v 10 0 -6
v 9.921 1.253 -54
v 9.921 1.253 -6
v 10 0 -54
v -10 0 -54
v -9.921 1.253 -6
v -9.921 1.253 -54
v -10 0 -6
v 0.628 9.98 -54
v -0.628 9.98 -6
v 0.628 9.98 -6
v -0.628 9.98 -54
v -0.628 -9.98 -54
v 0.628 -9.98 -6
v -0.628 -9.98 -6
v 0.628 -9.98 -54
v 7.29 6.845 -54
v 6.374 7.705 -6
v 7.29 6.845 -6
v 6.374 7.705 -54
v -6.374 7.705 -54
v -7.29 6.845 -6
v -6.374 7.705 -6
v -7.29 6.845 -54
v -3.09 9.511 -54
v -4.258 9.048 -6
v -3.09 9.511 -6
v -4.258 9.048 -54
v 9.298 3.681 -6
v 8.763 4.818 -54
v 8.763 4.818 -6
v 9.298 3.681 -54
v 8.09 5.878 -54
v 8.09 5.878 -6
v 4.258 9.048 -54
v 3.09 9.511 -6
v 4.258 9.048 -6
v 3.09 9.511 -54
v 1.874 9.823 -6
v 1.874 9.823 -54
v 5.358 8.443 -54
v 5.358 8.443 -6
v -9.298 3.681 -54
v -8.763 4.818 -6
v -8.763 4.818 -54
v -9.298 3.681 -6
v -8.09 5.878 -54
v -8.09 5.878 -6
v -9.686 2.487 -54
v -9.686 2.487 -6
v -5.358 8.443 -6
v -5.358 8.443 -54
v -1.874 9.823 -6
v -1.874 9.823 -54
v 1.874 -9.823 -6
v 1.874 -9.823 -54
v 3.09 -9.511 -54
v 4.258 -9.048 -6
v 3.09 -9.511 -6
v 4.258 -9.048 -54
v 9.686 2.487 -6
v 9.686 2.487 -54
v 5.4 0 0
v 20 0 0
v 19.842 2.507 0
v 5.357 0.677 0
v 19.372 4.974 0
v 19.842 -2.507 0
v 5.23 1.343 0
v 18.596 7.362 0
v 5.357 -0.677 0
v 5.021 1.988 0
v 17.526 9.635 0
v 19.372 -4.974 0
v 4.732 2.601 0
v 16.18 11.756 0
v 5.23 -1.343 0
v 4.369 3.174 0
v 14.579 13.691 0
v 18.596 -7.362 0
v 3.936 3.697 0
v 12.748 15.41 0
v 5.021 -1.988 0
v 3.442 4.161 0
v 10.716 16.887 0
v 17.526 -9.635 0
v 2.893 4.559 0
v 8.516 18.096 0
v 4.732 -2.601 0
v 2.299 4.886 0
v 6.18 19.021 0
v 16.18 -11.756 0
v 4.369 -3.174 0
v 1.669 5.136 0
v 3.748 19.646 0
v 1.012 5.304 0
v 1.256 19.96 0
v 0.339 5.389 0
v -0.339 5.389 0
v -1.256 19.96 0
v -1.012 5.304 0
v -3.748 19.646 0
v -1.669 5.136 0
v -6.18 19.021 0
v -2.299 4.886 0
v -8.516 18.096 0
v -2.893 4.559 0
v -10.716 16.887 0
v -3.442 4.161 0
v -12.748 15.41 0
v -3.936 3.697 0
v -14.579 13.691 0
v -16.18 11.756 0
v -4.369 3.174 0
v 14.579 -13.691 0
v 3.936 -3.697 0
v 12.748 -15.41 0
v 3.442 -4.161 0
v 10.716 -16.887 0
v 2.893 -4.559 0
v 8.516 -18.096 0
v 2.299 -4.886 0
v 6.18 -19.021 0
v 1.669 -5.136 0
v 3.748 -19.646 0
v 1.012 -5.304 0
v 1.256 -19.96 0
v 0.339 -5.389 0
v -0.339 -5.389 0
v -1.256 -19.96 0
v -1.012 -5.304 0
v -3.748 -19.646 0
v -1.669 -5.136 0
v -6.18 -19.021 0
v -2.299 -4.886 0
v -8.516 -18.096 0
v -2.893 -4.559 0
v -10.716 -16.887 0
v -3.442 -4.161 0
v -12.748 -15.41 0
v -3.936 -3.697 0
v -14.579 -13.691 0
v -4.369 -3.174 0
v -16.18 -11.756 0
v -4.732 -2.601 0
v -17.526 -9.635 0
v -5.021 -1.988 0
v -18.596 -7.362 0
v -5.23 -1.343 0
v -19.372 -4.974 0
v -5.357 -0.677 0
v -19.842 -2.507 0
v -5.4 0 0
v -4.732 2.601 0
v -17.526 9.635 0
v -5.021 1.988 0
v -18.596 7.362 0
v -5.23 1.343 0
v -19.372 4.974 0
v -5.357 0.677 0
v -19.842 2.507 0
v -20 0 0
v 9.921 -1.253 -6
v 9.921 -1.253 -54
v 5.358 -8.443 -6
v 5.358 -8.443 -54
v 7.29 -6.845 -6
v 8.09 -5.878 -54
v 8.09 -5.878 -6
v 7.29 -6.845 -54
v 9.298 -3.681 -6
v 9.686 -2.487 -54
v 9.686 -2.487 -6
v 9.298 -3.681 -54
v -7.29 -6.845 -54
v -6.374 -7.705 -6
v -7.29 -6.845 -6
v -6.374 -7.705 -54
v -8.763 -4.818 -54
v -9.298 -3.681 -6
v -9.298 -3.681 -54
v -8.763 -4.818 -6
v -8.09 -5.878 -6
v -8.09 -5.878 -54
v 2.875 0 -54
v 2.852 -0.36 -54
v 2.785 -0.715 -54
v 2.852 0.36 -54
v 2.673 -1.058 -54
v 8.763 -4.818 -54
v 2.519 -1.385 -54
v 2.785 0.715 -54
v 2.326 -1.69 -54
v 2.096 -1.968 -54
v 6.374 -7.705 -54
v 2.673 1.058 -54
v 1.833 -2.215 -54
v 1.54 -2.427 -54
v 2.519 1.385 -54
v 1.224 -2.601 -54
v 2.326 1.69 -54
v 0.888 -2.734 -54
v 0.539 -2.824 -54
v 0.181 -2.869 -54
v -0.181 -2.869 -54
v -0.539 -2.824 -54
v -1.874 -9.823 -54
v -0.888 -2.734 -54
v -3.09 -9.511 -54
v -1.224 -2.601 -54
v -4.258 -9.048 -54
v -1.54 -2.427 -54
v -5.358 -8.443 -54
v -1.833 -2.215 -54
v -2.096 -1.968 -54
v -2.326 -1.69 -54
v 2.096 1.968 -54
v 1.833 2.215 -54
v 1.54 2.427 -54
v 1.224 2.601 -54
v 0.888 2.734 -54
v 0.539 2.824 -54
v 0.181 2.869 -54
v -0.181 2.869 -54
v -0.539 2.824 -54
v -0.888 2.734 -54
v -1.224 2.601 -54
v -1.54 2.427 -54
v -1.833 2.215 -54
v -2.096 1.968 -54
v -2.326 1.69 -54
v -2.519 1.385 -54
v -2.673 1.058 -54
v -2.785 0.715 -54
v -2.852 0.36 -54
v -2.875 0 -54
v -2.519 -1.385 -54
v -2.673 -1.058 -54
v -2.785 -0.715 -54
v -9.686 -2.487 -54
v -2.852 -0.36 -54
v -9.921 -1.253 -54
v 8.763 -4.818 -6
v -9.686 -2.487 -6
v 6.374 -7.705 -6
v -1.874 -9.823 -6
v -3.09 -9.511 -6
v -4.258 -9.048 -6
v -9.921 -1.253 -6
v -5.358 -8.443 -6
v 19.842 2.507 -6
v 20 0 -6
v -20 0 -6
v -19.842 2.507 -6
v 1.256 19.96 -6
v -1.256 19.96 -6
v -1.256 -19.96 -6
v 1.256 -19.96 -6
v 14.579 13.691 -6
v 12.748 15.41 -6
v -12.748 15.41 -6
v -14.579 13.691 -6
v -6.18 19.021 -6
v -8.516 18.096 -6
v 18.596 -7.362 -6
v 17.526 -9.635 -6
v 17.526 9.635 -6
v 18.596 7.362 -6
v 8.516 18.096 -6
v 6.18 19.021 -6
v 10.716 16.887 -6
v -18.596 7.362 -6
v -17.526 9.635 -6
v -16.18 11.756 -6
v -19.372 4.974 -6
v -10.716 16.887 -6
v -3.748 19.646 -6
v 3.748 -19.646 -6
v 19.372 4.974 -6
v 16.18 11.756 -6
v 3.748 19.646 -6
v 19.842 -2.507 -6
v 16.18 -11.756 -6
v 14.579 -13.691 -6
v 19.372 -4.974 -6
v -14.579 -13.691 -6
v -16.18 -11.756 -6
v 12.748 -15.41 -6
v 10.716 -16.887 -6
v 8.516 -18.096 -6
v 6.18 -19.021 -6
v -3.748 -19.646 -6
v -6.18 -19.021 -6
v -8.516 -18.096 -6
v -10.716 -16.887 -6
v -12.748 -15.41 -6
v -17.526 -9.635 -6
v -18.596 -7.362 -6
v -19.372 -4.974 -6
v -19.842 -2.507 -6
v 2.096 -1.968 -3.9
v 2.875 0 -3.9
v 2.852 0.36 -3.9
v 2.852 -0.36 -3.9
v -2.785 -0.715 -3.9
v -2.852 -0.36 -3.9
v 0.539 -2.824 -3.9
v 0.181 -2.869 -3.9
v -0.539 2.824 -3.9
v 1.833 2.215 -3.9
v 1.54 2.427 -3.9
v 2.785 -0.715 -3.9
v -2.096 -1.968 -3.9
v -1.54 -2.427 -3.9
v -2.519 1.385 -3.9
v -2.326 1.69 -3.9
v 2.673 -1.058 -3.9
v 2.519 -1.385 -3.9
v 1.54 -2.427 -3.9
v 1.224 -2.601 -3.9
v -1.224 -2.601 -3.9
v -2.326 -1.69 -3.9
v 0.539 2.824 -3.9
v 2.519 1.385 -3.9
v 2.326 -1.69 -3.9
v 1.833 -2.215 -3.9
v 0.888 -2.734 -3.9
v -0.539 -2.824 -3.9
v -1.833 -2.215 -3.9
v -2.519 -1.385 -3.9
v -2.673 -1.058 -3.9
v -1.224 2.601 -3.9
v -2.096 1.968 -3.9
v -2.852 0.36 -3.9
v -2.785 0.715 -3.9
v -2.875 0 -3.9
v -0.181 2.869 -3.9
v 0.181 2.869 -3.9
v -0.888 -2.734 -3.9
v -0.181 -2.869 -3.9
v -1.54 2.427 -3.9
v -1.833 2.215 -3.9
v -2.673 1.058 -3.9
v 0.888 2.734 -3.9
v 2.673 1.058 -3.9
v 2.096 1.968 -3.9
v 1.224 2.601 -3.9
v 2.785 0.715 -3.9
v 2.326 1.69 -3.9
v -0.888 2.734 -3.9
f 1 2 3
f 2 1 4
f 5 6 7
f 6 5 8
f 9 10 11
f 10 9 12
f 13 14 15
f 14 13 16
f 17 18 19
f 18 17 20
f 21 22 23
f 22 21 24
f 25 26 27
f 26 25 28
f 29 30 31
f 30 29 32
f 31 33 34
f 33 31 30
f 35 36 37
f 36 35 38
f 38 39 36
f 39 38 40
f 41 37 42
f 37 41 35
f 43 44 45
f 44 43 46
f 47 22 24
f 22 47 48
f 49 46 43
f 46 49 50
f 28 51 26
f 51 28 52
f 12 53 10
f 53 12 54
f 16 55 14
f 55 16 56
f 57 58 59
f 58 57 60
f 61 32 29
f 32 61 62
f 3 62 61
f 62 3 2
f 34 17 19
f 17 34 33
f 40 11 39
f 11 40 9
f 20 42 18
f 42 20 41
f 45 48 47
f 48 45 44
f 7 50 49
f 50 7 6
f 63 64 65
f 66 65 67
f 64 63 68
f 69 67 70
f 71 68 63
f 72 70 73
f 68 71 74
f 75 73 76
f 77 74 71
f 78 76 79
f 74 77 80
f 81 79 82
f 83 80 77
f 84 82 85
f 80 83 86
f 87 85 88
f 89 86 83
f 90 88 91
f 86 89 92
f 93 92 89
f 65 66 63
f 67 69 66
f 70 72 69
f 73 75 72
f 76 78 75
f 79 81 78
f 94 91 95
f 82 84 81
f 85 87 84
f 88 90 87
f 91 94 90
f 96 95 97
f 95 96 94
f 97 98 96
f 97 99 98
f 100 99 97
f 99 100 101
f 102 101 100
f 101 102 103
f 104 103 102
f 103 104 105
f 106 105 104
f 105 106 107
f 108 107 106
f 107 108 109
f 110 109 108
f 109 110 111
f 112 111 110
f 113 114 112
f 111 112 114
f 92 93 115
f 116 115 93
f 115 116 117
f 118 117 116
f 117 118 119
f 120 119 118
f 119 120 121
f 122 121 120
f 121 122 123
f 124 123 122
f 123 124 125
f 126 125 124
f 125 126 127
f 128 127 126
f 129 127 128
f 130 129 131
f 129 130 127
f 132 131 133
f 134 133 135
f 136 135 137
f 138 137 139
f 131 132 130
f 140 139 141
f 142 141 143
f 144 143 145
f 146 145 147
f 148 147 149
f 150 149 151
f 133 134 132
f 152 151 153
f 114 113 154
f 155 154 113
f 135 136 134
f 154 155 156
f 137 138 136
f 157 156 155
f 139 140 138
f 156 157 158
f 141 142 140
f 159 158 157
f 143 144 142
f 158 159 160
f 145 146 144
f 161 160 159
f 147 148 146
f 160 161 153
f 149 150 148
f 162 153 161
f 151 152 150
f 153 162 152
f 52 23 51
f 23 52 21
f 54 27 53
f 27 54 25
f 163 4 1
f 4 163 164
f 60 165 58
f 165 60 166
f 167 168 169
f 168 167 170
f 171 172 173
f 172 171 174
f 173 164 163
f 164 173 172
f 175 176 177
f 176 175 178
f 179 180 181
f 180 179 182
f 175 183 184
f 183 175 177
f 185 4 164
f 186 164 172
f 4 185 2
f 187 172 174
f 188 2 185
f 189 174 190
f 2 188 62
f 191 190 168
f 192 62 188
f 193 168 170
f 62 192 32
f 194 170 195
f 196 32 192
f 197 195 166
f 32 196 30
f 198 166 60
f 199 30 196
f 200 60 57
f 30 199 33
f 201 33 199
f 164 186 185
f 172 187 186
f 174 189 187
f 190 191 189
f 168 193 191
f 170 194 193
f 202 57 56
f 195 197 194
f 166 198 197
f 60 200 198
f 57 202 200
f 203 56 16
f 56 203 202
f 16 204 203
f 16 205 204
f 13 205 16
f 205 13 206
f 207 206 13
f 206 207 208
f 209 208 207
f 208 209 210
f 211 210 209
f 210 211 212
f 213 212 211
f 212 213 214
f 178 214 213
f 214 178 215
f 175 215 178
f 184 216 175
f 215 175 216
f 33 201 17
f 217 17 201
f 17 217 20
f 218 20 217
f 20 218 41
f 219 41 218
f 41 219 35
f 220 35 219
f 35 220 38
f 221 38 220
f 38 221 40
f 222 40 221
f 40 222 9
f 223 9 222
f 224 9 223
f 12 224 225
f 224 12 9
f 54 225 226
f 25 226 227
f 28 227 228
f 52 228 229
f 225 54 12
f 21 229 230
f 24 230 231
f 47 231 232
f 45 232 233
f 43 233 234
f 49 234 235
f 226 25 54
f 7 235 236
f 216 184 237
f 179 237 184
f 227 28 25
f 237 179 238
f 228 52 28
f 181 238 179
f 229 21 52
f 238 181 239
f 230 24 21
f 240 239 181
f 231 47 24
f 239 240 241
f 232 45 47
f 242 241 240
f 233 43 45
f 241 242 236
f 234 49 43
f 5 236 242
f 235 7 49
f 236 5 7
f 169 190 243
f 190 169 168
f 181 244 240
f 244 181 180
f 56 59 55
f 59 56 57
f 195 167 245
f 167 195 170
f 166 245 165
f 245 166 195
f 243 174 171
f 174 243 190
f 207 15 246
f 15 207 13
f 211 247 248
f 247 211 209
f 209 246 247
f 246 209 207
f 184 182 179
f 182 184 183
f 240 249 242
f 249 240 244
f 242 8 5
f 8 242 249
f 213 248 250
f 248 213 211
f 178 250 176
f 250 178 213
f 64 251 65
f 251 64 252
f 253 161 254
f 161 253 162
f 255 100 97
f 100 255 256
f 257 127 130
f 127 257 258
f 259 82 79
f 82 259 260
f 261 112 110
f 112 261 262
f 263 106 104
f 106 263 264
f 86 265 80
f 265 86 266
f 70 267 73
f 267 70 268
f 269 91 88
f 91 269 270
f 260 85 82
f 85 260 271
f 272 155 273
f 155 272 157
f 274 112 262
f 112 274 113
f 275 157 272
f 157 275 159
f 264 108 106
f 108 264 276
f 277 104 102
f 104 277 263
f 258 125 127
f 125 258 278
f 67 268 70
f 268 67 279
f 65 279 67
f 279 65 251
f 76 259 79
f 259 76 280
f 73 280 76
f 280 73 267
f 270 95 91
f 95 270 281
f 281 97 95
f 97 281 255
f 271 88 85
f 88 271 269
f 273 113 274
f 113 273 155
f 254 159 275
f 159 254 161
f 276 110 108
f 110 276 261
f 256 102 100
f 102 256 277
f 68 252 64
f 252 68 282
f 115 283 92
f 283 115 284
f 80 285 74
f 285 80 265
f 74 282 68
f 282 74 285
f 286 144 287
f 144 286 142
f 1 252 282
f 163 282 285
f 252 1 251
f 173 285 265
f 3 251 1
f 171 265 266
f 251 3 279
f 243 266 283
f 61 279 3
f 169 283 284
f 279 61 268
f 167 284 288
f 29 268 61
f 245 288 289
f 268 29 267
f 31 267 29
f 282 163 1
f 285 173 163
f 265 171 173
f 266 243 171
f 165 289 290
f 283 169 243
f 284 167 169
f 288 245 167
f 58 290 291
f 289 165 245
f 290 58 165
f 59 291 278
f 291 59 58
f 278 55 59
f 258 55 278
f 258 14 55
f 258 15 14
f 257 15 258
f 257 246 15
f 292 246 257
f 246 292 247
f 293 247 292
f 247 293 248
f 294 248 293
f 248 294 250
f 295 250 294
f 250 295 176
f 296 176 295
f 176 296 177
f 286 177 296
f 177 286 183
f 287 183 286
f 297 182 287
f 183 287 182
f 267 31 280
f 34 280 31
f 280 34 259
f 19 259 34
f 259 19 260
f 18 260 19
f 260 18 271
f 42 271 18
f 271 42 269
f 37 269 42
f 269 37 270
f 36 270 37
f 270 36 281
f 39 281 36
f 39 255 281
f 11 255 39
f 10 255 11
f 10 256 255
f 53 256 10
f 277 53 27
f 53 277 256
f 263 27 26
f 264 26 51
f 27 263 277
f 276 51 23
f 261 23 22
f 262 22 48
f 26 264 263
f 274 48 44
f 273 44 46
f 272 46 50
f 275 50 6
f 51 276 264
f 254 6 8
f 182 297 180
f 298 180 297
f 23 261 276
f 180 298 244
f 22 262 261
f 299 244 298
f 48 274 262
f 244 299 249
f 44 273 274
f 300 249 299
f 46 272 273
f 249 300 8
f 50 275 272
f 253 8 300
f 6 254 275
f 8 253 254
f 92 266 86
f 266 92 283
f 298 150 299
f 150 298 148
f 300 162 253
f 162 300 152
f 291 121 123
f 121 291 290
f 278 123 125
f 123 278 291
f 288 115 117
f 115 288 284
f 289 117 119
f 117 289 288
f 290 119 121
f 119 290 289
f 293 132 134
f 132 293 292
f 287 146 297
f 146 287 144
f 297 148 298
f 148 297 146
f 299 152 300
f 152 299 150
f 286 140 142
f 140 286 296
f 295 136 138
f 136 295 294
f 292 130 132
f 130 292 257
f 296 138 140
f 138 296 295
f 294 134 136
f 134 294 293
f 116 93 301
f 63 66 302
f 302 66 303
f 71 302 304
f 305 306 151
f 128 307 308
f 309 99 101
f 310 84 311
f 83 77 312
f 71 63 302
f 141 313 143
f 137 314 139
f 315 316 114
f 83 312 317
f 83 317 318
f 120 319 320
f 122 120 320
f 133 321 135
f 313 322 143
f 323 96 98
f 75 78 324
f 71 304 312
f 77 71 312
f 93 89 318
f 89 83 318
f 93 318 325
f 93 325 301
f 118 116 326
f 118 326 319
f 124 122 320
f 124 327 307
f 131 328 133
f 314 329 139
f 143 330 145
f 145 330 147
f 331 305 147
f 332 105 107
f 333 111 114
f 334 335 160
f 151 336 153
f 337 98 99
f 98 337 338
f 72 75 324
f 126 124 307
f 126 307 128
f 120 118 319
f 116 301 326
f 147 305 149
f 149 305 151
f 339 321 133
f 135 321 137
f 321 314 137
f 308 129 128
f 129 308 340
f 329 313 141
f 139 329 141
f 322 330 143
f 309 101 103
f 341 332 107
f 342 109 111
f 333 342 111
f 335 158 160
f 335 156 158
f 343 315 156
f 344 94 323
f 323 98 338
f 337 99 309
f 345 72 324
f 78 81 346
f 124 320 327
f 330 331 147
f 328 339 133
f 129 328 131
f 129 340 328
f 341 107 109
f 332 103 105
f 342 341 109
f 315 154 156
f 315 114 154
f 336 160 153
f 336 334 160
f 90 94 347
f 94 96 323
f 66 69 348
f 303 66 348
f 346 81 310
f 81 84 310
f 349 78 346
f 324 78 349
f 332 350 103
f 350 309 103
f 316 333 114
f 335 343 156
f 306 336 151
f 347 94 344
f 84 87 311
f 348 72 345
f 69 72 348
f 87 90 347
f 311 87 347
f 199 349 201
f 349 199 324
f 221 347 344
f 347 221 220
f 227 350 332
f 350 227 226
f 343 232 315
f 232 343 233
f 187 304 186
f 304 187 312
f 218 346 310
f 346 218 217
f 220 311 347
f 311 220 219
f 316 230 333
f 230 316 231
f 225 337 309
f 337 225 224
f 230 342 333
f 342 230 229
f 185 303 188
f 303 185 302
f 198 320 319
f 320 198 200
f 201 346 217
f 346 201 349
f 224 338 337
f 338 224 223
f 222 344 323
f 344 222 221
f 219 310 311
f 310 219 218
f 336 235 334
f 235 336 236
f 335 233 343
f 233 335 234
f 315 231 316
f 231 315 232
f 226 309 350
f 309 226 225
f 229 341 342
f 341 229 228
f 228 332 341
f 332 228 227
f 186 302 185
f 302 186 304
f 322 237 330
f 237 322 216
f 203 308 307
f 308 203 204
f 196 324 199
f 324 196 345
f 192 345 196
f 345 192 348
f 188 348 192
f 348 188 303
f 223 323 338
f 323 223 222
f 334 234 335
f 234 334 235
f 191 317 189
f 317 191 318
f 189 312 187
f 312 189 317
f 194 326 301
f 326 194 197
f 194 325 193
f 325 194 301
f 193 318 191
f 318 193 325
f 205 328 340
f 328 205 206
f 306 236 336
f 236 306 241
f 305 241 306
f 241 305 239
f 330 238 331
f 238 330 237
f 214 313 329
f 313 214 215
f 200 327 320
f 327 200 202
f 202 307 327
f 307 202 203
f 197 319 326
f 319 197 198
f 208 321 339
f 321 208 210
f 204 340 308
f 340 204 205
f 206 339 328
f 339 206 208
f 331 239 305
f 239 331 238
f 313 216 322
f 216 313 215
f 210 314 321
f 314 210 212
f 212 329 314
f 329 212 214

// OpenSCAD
$fn = 50;


difference() {
	union() {
		translate(v = [0, 0, -54.0000000000]) {
			cylinder(h = 54, r = 10.0000000000);
		}
		translate(v = [0, 0, -6.0000000000]) {
			cylinder(h = 6, r = 20.0000000000);
		}
	}
	union() {
		translate(v = [0, 0, 0]) {
			rotate(a = [0, 0, 0]) {
				difference() {
					union() {
						#translate(v = [0, 0, -54.0000000000]) {
							cylinder(h = 54, r = 2.6000000000);
						}
						#translate(v = [0, 0, -3.9000000000]) {
							cylinder(h = 3.9000000000, r = 10.0000000000, r1 = 2.8750000000, r2 = 5.4000000000);
						}
						#translate(v = [0, 0, -54.0000000000]) {
							cylinder(h = 54, r = 2.8750000000);
						}
						#translate(v = [0, 0, -54.0000000000]) {
							cylinder(h = 54, r = 2.6000000000);
						}
					}
					union();
				}
			}
		}
	}
}
